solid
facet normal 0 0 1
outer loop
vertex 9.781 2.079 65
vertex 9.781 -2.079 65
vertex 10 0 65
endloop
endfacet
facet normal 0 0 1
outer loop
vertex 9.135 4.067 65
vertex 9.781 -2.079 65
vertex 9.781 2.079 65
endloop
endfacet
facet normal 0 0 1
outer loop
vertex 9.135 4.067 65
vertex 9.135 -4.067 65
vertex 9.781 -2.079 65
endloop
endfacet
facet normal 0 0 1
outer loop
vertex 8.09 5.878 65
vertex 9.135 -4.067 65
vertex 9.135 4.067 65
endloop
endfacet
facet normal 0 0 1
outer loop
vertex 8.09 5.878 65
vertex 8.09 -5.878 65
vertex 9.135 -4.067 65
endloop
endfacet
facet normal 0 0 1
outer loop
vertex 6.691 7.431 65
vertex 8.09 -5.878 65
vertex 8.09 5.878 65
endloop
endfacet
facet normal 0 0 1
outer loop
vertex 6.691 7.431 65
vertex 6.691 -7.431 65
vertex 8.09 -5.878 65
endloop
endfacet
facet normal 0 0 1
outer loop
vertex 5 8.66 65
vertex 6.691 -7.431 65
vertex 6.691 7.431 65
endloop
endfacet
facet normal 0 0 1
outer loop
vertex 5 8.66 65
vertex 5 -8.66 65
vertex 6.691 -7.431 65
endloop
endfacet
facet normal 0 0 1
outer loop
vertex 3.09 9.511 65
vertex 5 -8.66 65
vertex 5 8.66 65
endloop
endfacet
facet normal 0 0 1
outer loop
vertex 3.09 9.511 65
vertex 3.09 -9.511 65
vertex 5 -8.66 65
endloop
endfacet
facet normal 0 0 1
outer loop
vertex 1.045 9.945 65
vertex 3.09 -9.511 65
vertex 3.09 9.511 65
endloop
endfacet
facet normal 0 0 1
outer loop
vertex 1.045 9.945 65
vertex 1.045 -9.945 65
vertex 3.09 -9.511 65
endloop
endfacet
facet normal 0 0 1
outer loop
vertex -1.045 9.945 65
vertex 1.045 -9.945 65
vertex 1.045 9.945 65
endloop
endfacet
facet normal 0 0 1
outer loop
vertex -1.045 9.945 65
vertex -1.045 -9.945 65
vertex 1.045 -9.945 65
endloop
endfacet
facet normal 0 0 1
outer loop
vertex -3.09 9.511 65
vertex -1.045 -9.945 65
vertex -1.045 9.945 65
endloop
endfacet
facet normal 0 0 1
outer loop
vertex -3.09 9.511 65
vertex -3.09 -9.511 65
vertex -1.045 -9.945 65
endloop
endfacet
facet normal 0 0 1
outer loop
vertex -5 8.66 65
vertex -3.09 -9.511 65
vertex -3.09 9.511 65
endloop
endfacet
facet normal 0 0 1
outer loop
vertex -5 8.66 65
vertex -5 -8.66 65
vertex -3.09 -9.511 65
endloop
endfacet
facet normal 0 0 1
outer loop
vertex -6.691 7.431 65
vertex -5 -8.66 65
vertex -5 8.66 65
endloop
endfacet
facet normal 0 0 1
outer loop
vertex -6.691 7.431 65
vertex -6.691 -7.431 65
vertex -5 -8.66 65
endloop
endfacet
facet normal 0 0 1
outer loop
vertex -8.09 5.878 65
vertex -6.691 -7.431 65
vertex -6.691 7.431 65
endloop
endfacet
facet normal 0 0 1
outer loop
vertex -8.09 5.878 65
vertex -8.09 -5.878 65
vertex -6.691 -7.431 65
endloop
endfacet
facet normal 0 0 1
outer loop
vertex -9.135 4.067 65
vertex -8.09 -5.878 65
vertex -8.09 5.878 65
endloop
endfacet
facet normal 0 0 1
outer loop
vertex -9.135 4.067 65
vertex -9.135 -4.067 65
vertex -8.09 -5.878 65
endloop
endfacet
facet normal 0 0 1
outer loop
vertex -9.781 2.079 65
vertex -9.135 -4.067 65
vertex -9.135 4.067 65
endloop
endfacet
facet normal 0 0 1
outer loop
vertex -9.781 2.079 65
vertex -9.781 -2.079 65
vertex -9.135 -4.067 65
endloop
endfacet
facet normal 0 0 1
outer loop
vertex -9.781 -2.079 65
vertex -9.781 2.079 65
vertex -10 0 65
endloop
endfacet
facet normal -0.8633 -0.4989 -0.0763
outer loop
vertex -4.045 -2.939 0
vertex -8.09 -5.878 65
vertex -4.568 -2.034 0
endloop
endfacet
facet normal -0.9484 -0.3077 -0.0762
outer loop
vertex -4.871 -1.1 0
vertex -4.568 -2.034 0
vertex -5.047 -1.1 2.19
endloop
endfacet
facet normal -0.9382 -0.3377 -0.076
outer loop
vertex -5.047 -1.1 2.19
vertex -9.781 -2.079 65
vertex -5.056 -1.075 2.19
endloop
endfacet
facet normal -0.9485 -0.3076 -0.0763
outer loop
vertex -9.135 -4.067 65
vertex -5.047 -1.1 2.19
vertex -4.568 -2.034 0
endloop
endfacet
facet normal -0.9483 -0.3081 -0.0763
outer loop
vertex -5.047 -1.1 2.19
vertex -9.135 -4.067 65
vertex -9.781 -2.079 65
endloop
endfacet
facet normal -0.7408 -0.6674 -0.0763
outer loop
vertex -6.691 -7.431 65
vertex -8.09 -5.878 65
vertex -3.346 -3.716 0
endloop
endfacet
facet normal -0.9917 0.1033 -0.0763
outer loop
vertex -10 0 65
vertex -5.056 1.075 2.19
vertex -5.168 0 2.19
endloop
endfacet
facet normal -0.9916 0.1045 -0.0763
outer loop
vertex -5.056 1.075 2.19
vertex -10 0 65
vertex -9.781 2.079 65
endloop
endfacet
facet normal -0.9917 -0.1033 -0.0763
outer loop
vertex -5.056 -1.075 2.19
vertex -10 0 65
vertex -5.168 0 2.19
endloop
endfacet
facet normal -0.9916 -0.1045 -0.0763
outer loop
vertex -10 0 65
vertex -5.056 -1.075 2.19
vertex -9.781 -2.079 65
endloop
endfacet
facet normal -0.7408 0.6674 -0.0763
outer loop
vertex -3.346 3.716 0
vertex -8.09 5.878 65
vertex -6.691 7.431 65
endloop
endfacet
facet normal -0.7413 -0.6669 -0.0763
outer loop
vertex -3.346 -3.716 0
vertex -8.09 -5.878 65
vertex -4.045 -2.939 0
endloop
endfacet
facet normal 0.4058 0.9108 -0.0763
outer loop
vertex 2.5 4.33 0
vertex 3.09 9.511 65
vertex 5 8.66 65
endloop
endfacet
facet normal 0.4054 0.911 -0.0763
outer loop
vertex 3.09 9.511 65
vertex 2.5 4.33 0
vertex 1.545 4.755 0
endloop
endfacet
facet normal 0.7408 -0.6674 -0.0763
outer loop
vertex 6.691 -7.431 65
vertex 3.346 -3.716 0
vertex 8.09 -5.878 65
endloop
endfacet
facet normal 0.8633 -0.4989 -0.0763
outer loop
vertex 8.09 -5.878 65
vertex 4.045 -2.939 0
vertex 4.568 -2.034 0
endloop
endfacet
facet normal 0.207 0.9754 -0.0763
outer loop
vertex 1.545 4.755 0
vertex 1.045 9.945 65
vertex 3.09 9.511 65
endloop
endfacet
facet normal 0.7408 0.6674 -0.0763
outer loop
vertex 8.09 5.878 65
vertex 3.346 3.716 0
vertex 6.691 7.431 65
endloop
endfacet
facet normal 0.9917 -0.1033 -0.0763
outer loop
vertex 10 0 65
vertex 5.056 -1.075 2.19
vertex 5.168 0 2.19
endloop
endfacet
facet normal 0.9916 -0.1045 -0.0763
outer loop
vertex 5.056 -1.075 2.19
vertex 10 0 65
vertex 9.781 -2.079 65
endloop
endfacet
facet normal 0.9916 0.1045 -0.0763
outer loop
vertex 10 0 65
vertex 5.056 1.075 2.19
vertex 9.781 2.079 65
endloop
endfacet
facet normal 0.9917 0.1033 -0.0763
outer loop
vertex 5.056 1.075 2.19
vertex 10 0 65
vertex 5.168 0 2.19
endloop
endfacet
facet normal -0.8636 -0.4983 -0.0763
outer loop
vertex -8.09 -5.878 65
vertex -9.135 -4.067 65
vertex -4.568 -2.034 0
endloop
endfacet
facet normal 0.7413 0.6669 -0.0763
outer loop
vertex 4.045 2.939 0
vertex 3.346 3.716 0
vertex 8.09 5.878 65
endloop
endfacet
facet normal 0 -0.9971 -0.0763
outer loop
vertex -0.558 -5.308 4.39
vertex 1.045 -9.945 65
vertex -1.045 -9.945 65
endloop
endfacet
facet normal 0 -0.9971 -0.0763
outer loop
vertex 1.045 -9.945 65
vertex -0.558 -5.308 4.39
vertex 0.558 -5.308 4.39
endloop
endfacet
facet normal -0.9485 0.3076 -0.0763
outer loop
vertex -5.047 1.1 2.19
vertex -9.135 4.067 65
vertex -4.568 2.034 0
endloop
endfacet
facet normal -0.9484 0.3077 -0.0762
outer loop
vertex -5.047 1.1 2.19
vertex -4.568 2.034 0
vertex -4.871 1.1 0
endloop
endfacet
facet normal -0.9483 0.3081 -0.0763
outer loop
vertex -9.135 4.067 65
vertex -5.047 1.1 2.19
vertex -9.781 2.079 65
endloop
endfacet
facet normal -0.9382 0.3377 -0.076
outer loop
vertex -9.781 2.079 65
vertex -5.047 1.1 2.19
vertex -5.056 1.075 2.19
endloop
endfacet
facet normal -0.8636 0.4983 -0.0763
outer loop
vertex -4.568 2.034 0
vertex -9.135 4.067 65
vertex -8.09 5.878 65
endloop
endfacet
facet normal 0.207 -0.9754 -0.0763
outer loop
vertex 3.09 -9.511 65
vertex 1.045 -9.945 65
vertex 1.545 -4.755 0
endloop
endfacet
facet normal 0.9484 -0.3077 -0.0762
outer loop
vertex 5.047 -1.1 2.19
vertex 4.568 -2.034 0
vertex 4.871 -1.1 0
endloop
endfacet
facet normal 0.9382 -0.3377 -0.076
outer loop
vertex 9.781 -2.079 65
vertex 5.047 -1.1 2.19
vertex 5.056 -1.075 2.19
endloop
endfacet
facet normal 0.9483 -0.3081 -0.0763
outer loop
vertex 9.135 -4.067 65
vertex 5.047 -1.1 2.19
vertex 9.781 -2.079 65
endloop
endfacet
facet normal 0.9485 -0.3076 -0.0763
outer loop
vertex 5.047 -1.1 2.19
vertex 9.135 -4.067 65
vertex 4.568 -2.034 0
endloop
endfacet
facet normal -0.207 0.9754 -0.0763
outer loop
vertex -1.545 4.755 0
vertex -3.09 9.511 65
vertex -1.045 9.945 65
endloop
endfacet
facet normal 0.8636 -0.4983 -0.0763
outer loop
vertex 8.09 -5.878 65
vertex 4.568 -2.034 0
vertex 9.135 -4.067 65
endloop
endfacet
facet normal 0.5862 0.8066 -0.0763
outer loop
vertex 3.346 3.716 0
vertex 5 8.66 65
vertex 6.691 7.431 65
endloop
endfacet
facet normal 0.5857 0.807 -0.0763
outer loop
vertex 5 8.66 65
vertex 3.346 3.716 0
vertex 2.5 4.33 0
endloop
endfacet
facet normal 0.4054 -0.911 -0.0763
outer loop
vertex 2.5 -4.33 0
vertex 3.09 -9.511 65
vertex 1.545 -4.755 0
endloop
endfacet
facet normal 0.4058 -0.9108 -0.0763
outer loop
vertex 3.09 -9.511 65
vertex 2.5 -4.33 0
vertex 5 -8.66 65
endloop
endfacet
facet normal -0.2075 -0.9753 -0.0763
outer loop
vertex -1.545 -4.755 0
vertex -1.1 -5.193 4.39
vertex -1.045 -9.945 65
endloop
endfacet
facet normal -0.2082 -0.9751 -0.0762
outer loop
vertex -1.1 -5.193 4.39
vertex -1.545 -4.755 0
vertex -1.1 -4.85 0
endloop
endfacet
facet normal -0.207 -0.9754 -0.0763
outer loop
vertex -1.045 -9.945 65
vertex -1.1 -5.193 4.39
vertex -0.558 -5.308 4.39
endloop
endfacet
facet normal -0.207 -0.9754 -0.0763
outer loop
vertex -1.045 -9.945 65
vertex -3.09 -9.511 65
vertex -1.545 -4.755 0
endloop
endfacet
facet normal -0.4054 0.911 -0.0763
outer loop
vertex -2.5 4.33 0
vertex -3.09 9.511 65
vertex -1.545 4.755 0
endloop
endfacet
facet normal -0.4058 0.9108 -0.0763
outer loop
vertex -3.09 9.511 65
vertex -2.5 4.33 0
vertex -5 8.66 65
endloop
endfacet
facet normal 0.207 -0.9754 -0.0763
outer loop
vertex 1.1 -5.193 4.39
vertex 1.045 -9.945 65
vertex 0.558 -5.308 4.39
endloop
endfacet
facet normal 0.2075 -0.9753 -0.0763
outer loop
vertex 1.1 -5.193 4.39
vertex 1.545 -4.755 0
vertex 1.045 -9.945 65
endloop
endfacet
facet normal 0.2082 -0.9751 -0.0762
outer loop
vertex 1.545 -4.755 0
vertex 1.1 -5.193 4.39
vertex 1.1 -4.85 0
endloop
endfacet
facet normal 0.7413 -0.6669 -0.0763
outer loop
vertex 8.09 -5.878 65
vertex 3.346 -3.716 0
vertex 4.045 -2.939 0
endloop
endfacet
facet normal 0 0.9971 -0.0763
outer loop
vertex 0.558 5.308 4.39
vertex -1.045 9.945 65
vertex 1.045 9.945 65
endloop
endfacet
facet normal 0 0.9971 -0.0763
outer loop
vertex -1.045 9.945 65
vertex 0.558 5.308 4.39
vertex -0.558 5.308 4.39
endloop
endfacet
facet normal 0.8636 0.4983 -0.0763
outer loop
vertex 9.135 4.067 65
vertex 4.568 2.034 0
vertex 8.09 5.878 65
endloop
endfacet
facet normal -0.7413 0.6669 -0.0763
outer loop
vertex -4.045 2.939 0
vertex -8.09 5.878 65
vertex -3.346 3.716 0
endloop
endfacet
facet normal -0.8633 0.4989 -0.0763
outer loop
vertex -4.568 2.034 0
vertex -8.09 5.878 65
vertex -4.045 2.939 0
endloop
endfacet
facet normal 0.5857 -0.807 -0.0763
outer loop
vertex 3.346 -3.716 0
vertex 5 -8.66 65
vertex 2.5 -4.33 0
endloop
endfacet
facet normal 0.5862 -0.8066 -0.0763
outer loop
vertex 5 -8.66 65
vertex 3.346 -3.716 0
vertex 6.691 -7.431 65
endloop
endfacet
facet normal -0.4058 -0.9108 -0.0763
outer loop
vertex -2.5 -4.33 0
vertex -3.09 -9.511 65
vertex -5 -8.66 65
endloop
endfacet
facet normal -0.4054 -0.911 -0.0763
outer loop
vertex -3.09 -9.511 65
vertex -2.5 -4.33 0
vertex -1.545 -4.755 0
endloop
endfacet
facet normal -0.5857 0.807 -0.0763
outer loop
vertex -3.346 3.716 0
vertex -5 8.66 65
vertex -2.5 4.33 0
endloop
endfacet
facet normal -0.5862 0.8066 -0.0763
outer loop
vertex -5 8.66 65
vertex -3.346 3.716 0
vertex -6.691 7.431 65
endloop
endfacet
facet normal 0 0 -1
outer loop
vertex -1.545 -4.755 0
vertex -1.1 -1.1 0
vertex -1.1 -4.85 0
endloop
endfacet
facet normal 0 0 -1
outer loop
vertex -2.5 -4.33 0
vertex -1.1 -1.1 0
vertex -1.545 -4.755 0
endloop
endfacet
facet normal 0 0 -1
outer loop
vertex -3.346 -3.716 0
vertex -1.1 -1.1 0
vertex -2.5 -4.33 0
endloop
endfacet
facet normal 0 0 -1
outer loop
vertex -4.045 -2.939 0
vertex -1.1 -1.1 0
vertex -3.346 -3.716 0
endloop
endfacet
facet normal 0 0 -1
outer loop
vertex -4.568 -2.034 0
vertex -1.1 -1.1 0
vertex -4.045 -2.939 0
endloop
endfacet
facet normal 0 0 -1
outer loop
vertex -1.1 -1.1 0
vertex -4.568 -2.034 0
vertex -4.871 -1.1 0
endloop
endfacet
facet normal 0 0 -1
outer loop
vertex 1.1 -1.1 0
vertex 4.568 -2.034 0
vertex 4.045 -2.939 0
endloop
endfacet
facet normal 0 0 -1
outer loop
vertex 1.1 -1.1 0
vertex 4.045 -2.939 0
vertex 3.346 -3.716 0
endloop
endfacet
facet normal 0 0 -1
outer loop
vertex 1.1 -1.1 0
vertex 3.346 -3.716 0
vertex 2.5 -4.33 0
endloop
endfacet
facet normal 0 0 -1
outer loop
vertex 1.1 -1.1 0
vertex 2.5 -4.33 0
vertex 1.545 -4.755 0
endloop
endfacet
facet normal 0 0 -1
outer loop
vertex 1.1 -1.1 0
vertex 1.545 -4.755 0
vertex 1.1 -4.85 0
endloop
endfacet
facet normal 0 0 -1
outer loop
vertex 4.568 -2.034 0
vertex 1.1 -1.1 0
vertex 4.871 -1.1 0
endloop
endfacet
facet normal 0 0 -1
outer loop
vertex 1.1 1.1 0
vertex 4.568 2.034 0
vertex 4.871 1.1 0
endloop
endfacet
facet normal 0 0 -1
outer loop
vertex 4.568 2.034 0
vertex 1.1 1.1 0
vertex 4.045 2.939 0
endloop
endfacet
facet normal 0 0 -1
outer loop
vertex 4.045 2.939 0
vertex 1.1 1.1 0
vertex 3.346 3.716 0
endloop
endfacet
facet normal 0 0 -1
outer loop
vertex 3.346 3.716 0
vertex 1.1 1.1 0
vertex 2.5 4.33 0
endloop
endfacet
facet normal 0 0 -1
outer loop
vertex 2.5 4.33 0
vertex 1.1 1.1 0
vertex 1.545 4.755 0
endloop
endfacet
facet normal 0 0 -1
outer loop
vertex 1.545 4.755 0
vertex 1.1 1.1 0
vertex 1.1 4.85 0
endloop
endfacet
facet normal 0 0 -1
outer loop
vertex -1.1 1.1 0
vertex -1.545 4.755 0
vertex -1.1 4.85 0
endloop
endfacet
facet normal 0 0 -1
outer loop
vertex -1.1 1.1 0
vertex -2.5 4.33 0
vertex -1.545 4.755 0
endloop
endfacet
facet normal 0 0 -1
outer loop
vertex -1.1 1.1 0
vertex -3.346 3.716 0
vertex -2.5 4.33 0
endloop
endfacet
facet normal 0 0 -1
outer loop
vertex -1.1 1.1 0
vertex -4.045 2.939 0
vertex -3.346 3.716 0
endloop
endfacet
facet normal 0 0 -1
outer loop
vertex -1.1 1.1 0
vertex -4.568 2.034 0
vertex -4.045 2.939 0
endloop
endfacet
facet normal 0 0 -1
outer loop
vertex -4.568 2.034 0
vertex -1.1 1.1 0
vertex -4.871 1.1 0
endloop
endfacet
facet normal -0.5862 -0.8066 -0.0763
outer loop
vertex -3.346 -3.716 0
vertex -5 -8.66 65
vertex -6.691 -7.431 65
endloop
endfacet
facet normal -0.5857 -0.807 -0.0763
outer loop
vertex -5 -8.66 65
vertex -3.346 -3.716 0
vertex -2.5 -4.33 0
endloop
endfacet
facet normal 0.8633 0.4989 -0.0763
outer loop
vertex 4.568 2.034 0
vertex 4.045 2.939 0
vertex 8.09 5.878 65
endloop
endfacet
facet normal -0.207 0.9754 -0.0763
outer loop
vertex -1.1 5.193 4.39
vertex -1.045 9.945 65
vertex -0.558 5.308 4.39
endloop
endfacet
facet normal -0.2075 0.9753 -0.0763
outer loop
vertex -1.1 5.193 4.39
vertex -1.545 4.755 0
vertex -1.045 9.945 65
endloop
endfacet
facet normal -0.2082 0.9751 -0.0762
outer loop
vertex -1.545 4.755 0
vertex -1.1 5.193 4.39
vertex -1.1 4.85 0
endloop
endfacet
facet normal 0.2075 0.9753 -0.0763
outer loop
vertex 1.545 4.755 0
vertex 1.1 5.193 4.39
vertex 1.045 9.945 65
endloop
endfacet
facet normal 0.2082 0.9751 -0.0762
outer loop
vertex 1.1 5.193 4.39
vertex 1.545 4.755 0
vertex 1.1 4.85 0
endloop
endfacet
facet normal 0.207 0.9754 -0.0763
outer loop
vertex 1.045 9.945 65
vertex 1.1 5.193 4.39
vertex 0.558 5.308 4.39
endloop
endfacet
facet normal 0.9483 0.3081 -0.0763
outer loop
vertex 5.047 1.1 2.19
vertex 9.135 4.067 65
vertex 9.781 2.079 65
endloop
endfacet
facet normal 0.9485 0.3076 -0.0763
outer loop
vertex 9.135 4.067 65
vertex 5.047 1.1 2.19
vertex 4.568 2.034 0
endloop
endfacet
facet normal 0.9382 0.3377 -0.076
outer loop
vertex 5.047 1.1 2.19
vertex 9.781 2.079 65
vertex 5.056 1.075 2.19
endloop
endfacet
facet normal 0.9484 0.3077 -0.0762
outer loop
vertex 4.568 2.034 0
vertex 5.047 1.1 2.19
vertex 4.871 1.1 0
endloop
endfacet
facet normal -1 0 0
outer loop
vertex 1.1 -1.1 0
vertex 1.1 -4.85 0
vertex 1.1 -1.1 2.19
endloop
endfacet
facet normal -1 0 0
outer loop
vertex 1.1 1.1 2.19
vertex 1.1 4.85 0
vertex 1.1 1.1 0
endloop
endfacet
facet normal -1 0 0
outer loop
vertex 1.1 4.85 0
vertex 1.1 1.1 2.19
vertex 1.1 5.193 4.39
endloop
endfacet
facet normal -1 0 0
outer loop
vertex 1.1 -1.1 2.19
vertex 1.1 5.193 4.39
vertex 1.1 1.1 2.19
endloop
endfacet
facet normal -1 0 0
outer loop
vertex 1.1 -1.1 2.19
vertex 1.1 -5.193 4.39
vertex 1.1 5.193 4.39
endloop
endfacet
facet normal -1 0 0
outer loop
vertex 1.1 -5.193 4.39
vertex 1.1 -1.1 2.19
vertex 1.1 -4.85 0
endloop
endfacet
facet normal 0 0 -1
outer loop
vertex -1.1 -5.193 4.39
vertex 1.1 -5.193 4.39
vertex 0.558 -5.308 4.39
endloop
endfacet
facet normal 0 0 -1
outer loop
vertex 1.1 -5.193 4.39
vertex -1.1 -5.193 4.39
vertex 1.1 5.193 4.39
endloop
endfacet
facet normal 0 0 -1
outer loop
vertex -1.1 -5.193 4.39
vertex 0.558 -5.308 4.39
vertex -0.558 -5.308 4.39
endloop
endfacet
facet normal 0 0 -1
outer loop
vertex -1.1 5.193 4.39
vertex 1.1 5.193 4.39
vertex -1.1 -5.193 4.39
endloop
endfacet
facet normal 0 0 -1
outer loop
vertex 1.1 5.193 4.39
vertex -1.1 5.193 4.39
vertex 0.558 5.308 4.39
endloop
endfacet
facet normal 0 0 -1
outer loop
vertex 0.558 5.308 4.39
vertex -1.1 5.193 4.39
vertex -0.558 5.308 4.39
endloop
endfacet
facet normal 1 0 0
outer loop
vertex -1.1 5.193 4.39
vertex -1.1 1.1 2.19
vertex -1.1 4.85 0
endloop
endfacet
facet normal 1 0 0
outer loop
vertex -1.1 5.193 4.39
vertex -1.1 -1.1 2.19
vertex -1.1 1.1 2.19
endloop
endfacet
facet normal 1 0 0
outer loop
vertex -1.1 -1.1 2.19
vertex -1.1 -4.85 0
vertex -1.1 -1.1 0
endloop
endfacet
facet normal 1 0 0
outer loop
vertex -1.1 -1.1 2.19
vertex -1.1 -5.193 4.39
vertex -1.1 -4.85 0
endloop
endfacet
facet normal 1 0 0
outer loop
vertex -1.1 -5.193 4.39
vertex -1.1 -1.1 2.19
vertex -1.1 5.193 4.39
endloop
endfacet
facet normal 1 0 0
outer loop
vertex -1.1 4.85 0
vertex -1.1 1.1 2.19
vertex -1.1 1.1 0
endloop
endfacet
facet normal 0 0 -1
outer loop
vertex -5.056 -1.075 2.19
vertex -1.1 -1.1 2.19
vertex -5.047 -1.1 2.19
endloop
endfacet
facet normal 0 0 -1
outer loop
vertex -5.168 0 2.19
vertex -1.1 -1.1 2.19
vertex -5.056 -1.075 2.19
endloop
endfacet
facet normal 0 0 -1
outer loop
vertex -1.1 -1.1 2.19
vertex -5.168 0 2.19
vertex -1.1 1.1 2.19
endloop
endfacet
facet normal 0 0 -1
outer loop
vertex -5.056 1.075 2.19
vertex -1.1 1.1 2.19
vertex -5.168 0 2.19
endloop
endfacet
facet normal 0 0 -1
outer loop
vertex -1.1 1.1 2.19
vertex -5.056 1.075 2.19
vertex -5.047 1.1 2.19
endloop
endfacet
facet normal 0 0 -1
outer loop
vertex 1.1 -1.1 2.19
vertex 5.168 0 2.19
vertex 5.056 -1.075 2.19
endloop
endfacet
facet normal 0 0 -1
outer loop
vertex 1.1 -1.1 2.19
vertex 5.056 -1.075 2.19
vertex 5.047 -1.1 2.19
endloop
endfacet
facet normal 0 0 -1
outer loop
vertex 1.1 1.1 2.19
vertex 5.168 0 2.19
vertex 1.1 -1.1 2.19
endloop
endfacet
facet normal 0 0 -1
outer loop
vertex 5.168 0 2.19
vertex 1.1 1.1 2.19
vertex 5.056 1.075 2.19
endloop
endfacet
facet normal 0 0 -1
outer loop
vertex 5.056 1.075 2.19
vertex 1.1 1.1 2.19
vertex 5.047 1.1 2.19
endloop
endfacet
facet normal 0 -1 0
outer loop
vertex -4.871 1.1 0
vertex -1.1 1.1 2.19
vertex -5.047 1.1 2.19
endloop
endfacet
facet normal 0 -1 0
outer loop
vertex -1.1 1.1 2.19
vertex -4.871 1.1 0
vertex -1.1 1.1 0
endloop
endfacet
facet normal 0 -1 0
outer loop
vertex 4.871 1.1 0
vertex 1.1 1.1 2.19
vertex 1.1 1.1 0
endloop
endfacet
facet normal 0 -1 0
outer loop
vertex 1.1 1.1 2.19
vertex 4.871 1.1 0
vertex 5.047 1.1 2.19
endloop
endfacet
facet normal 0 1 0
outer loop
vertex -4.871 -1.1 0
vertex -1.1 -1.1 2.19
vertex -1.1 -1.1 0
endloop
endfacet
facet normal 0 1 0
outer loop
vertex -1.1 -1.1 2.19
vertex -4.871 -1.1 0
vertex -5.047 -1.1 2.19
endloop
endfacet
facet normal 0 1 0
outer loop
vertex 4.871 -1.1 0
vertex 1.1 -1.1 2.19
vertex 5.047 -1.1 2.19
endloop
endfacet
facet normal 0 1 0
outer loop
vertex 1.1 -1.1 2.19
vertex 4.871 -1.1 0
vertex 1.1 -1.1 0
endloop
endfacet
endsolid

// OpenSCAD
wire = 2.2;
width = 20;
height = 65;


difference(){
cylinder(h=height,d1=width/2,d2=width);


translate([-wire/2,-width/2,-0.01])
    cube([wire,width,wire*2]);
    
translate([-width/2,-wire/2,-0.01])
    cube([width,wire,wire]);
}
